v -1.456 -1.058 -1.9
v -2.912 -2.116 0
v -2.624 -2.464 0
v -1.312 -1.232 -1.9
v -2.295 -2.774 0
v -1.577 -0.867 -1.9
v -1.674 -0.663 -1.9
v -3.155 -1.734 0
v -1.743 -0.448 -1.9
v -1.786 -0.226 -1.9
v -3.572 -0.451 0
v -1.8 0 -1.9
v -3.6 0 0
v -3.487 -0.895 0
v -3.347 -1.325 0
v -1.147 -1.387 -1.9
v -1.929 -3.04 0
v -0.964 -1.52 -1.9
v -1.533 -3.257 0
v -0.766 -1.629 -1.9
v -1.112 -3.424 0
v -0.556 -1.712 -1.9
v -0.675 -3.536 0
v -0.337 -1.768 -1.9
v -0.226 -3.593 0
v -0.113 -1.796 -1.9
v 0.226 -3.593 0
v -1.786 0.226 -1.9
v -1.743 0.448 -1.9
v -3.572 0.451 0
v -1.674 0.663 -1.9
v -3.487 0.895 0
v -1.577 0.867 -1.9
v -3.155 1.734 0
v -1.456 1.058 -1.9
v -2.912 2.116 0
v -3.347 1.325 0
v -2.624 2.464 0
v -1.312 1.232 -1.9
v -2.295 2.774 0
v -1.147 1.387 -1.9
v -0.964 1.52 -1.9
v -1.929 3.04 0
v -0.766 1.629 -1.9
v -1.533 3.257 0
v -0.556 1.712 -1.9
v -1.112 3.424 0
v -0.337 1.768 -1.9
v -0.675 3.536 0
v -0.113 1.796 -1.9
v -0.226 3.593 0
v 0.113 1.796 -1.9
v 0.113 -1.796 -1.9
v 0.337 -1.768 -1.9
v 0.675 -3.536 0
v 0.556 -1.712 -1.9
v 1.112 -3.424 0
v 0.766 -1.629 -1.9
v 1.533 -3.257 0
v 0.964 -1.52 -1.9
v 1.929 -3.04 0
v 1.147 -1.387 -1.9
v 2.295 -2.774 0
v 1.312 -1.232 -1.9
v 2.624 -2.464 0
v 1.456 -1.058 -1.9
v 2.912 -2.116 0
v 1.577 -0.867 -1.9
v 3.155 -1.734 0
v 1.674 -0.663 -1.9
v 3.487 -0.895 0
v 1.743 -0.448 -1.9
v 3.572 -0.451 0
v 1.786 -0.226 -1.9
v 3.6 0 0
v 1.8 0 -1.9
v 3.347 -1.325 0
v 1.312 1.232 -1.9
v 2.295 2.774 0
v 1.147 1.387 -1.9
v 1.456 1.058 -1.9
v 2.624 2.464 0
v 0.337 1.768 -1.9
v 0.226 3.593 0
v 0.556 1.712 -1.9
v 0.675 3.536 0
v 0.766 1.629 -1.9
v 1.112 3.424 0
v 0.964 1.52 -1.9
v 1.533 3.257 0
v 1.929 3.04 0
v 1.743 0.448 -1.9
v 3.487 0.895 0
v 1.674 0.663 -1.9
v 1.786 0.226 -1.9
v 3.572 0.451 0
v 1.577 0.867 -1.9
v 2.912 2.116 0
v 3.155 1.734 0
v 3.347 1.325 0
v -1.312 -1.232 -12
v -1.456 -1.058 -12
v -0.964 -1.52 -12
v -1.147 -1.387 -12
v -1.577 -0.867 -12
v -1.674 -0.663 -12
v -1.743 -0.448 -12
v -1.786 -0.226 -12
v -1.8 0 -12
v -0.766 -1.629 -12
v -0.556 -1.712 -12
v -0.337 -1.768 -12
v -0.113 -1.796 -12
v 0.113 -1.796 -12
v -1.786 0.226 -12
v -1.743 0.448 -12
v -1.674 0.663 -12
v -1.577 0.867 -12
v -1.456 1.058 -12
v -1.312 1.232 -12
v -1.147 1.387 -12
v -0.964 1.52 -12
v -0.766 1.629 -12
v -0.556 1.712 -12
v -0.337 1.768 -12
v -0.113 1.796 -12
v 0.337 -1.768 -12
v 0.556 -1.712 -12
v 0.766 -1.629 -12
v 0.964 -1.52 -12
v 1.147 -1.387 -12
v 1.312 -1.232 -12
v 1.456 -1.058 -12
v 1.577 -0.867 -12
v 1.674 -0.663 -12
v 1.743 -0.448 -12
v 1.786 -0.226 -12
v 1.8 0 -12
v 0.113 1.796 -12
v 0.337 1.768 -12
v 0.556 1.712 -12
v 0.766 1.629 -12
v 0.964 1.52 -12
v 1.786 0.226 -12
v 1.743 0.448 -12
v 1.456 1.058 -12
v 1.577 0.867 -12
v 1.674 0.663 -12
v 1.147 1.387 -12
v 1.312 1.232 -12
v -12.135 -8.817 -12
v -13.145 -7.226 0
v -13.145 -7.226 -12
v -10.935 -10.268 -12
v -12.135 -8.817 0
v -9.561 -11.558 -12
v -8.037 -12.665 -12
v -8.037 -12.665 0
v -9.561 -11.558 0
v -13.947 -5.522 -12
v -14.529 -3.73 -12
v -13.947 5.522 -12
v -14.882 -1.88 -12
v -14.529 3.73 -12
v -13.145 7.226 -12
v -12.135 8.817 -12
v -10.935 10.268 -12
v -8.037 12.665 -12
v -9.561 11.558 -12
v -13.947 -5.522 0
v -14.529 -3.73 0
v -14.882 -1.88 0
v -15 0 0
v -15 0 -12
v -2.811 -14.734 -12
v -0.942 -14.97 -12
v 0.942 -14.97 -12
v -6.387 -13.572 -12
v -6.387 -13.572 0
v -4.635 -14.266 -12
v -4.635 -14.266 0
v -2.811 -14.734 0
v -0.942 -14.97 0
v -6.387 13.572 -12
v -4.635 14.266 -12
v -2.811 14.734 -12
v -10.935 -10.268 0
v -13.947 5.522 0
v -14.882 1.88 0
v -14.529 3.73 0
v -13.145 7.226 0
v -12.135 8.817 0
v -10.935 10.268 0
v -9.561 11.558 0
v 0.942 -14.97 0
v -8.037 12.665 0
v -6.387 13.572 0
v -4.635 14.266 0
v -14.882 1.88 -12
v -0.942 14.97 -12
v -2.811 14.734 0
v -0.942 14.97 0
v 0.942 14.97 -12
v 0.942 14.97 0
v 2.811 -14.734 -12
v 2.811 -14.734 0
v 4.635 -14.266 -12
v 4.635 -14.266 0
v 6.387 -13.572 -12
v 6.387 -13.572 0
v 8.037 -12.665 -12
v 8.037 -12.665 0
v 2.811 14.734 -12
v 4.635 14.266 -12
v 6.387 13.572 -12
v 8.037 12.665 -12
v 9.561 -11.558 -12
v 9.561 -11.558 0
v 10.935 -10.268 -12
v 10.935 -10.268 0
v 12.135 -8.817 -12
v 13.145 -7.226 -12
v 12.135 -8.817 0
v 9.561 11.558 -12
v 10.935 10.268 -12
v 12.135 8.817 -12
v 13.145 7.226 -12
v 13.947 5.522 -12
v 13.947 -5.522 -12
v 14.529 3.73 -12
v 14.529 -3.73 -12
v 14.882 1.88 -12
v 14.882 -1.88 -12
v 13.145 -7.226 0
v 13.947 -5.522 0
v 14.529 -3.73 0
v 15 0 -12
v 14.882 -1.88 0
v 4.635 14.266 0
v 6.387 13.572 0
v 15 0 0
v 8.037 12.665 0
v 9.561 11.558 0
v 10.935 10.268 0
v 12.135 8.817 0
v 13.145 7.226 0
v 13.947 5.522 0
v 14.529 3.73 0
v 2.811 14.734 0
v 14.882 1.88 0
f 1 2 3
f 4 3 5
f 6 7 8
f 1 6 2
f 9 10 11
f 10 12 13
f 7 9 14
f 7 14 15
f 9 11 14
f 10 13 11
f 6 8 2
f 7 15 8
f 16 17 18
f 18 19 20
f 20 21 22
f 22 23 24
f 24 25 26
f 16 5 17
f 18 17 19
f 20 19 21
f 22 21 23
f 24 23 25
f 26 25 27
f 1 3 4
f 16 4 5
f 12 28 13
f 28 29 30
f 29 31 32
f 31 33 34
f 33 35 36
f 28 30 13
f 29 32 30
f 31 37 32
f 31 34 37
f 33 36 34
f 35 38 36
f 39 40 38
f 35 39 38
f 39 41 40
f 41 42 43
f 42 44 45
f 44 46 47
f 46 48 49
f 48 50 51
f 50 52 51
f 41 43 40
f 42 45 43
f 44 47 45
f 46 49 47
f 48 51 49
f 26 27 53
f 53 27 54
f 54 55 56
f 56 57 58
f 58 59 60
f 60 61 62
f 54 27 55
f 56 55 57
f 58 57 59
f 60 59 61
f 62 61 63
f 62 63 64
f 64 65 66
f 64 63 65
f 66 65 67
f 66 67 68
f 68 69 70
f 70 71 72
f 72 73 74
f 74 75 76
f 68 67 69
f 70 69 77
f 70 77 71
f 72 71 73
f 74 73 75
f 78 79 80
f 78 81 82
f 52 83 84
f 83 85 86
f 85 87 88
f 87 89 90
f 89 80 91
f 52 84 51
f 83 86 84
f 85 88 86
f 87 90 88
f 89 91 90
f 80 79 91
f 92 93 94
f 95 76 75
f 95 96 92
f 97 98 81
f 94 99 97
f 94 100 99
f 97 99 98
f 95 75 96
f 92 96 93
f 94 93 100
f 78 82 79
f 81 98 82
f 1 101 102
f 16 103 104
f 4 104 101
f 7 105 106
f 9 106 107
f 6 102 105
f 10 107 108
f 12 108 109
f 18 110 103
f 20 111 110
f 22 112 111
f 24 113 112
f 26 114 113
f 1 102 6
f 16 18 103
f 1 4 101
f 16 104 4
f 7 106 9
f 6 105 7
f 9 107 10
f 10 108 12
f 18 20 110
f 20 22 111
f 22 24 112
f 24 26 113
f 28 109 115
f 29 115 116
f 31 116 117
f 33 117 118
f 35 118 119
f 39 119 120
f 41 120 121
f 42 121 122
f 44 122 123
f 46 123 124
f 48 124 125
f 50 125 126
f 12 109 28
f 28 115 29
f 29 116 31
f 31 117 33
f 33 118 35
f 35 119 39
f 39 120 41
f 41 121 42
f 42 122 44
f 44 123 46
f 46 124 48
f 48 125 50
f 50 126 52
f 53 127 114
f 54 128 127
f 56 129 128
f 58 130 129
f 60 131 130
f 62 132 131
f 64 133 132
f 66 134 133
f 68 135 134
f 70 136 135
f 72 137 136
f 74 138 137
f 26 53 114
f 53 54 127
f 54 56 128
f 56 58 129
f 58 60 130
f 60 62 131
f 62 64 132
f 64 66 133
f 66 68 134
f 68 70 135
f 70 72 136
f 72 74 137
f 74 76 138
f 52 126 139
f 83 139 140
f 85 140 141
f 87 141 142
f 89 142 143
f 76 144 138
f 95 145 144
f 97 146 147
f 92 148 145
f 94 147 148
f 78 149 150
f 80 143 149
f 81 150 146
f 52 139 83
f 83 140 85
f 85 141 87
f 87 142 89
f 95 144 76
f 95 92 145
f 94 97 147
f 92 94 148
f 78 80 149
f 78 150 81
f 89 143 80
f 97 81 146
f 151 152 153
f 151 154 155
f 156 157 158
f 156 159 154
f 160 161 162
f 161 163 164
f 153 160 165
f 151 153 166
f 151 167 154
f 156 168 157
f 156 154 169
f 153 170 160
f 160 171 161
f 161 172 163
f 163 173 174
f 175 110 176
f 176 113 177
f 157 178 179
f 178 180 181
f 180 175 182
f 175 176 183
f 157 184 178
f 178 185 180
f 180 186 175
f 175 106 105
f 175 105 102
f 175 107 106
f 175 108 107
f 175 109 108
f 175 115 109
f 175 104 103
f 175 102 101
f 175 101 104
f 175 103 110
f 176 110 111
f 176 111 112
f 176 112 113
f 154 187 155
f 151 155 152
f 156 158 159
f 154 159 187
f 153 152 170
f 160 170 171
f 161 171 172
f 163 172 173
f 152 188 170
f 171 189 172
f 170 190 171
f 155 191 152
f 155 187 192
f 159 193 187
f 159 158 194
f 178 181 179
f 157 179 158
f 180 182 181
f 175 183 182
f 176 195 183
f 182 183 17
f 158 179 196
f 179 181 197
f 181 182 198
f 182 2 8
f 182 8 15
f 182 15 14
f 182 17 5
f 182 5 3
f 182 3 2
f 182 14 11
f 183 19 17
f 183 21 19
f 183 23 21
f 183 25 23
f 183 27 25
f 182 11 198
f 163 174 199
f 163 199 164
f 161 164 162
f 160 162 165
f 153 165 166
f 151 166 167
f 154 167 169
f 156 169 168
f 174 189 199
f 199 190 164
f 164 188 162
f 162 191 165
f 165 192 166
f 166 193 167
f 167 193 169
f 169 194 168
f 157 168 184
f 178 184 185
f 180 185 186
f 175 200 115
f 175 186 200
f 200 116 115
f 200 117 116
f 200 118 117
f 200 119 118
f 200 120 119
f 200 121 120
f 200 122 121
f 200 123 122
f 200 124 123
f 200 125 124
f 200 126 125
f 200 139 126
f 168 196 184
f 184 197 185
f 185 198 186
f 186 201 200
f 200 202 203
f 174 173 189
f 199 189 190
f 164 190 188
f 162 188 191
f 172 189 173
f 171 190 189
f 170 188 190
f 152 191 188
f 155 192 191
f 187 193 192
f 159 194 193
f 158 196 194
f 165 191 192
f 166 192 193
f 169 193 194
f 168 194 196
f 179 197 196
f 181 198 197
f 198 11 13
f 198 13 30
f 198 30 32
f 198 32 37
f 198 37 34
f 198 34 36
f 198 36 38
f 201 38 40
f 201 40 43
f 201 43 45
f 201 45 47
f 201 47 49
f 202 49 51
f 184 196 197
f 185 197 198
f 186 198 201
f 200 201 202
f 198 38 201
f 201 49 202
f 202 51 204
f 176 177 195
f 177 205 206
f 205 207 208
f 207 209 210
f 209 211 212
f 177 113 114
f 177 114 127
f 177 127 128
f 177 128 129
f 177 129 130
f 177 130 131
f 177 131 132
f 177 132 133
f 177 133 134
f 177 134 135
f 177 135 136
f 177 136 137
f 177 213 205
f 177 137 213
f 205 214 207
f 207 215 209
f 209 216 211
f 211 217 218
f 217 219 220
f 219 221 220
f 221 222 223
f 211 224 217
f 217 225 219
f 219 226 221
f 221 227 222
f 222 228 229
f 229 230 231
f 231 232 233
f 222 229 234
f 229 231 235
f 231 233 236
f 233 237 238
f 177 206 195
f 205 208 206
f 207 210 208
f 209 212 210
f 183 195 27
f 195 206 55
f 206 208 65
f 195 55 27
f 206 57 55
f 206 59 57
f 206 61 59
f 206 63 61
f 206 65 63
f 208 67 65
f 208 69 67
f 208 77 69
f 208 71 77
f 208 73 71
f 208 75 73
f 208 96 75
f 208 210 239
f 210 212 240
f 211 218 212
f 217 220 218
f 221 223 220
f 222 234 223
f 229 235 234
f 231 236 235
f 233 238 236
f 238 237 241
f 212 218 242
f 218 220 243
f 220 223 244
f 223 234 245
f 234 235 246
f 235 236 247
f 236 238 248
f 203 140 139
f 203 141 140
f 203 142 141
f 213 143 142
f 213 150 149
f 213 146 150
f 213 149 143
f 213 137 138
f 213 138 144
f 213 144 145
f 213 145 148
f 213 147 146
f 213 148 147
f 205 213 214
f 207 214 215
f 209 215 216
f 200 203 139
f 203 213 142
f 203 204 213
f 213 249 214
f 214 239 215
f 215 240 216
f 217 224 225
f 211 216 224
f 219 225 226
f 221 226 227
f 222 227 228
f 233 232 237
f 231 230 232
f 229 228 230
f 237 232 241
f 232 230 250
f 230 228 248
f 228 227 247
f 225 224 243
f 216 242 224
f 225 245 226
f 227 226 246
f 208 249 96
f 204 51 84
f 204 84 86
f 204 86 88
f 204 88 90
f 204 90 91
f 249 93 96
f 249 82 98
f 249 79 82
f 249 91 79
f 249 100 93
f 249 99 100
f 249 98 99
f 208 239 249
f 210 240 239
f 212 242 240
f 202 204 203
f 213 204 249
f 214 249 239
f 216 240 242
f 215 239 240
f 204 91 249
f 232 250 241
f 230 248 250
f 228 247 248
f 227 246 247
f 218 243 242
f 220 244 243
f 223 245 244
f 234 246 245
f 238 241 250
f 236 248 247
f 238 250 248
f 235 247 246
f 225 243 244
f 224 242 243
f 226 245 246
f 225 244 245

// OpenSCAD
$fn = 50;

difference() {
	union() {
		translate(v = [0, 0, -12.0]) {
			cylinder(h = 12, r = 15.0);
		}
	}
	union() {
		translate(v = [0, 0, 0]) {
			rotate(a = [0, 0, 0]) {
				difference() {
					union() {
						translate(v = [0, 0, -15.0]) {
							cylinder(h = 15, r = 1.5);
						}
						translate(v = [0, 0, -1.9]) {
							cylinder(h = 1.9, r1 = 1.8, r2 = 3.6);
						}
						translate(v = [0, 0, -15.0]) {
							cylinder(h = 15, r = 1.8);
						}
						translate(v = [0, 0, -15.0]) {
							cylinder(h = 15, r = 1.5);
						}
					}
					union();
				}
			}
		}
	}
}
